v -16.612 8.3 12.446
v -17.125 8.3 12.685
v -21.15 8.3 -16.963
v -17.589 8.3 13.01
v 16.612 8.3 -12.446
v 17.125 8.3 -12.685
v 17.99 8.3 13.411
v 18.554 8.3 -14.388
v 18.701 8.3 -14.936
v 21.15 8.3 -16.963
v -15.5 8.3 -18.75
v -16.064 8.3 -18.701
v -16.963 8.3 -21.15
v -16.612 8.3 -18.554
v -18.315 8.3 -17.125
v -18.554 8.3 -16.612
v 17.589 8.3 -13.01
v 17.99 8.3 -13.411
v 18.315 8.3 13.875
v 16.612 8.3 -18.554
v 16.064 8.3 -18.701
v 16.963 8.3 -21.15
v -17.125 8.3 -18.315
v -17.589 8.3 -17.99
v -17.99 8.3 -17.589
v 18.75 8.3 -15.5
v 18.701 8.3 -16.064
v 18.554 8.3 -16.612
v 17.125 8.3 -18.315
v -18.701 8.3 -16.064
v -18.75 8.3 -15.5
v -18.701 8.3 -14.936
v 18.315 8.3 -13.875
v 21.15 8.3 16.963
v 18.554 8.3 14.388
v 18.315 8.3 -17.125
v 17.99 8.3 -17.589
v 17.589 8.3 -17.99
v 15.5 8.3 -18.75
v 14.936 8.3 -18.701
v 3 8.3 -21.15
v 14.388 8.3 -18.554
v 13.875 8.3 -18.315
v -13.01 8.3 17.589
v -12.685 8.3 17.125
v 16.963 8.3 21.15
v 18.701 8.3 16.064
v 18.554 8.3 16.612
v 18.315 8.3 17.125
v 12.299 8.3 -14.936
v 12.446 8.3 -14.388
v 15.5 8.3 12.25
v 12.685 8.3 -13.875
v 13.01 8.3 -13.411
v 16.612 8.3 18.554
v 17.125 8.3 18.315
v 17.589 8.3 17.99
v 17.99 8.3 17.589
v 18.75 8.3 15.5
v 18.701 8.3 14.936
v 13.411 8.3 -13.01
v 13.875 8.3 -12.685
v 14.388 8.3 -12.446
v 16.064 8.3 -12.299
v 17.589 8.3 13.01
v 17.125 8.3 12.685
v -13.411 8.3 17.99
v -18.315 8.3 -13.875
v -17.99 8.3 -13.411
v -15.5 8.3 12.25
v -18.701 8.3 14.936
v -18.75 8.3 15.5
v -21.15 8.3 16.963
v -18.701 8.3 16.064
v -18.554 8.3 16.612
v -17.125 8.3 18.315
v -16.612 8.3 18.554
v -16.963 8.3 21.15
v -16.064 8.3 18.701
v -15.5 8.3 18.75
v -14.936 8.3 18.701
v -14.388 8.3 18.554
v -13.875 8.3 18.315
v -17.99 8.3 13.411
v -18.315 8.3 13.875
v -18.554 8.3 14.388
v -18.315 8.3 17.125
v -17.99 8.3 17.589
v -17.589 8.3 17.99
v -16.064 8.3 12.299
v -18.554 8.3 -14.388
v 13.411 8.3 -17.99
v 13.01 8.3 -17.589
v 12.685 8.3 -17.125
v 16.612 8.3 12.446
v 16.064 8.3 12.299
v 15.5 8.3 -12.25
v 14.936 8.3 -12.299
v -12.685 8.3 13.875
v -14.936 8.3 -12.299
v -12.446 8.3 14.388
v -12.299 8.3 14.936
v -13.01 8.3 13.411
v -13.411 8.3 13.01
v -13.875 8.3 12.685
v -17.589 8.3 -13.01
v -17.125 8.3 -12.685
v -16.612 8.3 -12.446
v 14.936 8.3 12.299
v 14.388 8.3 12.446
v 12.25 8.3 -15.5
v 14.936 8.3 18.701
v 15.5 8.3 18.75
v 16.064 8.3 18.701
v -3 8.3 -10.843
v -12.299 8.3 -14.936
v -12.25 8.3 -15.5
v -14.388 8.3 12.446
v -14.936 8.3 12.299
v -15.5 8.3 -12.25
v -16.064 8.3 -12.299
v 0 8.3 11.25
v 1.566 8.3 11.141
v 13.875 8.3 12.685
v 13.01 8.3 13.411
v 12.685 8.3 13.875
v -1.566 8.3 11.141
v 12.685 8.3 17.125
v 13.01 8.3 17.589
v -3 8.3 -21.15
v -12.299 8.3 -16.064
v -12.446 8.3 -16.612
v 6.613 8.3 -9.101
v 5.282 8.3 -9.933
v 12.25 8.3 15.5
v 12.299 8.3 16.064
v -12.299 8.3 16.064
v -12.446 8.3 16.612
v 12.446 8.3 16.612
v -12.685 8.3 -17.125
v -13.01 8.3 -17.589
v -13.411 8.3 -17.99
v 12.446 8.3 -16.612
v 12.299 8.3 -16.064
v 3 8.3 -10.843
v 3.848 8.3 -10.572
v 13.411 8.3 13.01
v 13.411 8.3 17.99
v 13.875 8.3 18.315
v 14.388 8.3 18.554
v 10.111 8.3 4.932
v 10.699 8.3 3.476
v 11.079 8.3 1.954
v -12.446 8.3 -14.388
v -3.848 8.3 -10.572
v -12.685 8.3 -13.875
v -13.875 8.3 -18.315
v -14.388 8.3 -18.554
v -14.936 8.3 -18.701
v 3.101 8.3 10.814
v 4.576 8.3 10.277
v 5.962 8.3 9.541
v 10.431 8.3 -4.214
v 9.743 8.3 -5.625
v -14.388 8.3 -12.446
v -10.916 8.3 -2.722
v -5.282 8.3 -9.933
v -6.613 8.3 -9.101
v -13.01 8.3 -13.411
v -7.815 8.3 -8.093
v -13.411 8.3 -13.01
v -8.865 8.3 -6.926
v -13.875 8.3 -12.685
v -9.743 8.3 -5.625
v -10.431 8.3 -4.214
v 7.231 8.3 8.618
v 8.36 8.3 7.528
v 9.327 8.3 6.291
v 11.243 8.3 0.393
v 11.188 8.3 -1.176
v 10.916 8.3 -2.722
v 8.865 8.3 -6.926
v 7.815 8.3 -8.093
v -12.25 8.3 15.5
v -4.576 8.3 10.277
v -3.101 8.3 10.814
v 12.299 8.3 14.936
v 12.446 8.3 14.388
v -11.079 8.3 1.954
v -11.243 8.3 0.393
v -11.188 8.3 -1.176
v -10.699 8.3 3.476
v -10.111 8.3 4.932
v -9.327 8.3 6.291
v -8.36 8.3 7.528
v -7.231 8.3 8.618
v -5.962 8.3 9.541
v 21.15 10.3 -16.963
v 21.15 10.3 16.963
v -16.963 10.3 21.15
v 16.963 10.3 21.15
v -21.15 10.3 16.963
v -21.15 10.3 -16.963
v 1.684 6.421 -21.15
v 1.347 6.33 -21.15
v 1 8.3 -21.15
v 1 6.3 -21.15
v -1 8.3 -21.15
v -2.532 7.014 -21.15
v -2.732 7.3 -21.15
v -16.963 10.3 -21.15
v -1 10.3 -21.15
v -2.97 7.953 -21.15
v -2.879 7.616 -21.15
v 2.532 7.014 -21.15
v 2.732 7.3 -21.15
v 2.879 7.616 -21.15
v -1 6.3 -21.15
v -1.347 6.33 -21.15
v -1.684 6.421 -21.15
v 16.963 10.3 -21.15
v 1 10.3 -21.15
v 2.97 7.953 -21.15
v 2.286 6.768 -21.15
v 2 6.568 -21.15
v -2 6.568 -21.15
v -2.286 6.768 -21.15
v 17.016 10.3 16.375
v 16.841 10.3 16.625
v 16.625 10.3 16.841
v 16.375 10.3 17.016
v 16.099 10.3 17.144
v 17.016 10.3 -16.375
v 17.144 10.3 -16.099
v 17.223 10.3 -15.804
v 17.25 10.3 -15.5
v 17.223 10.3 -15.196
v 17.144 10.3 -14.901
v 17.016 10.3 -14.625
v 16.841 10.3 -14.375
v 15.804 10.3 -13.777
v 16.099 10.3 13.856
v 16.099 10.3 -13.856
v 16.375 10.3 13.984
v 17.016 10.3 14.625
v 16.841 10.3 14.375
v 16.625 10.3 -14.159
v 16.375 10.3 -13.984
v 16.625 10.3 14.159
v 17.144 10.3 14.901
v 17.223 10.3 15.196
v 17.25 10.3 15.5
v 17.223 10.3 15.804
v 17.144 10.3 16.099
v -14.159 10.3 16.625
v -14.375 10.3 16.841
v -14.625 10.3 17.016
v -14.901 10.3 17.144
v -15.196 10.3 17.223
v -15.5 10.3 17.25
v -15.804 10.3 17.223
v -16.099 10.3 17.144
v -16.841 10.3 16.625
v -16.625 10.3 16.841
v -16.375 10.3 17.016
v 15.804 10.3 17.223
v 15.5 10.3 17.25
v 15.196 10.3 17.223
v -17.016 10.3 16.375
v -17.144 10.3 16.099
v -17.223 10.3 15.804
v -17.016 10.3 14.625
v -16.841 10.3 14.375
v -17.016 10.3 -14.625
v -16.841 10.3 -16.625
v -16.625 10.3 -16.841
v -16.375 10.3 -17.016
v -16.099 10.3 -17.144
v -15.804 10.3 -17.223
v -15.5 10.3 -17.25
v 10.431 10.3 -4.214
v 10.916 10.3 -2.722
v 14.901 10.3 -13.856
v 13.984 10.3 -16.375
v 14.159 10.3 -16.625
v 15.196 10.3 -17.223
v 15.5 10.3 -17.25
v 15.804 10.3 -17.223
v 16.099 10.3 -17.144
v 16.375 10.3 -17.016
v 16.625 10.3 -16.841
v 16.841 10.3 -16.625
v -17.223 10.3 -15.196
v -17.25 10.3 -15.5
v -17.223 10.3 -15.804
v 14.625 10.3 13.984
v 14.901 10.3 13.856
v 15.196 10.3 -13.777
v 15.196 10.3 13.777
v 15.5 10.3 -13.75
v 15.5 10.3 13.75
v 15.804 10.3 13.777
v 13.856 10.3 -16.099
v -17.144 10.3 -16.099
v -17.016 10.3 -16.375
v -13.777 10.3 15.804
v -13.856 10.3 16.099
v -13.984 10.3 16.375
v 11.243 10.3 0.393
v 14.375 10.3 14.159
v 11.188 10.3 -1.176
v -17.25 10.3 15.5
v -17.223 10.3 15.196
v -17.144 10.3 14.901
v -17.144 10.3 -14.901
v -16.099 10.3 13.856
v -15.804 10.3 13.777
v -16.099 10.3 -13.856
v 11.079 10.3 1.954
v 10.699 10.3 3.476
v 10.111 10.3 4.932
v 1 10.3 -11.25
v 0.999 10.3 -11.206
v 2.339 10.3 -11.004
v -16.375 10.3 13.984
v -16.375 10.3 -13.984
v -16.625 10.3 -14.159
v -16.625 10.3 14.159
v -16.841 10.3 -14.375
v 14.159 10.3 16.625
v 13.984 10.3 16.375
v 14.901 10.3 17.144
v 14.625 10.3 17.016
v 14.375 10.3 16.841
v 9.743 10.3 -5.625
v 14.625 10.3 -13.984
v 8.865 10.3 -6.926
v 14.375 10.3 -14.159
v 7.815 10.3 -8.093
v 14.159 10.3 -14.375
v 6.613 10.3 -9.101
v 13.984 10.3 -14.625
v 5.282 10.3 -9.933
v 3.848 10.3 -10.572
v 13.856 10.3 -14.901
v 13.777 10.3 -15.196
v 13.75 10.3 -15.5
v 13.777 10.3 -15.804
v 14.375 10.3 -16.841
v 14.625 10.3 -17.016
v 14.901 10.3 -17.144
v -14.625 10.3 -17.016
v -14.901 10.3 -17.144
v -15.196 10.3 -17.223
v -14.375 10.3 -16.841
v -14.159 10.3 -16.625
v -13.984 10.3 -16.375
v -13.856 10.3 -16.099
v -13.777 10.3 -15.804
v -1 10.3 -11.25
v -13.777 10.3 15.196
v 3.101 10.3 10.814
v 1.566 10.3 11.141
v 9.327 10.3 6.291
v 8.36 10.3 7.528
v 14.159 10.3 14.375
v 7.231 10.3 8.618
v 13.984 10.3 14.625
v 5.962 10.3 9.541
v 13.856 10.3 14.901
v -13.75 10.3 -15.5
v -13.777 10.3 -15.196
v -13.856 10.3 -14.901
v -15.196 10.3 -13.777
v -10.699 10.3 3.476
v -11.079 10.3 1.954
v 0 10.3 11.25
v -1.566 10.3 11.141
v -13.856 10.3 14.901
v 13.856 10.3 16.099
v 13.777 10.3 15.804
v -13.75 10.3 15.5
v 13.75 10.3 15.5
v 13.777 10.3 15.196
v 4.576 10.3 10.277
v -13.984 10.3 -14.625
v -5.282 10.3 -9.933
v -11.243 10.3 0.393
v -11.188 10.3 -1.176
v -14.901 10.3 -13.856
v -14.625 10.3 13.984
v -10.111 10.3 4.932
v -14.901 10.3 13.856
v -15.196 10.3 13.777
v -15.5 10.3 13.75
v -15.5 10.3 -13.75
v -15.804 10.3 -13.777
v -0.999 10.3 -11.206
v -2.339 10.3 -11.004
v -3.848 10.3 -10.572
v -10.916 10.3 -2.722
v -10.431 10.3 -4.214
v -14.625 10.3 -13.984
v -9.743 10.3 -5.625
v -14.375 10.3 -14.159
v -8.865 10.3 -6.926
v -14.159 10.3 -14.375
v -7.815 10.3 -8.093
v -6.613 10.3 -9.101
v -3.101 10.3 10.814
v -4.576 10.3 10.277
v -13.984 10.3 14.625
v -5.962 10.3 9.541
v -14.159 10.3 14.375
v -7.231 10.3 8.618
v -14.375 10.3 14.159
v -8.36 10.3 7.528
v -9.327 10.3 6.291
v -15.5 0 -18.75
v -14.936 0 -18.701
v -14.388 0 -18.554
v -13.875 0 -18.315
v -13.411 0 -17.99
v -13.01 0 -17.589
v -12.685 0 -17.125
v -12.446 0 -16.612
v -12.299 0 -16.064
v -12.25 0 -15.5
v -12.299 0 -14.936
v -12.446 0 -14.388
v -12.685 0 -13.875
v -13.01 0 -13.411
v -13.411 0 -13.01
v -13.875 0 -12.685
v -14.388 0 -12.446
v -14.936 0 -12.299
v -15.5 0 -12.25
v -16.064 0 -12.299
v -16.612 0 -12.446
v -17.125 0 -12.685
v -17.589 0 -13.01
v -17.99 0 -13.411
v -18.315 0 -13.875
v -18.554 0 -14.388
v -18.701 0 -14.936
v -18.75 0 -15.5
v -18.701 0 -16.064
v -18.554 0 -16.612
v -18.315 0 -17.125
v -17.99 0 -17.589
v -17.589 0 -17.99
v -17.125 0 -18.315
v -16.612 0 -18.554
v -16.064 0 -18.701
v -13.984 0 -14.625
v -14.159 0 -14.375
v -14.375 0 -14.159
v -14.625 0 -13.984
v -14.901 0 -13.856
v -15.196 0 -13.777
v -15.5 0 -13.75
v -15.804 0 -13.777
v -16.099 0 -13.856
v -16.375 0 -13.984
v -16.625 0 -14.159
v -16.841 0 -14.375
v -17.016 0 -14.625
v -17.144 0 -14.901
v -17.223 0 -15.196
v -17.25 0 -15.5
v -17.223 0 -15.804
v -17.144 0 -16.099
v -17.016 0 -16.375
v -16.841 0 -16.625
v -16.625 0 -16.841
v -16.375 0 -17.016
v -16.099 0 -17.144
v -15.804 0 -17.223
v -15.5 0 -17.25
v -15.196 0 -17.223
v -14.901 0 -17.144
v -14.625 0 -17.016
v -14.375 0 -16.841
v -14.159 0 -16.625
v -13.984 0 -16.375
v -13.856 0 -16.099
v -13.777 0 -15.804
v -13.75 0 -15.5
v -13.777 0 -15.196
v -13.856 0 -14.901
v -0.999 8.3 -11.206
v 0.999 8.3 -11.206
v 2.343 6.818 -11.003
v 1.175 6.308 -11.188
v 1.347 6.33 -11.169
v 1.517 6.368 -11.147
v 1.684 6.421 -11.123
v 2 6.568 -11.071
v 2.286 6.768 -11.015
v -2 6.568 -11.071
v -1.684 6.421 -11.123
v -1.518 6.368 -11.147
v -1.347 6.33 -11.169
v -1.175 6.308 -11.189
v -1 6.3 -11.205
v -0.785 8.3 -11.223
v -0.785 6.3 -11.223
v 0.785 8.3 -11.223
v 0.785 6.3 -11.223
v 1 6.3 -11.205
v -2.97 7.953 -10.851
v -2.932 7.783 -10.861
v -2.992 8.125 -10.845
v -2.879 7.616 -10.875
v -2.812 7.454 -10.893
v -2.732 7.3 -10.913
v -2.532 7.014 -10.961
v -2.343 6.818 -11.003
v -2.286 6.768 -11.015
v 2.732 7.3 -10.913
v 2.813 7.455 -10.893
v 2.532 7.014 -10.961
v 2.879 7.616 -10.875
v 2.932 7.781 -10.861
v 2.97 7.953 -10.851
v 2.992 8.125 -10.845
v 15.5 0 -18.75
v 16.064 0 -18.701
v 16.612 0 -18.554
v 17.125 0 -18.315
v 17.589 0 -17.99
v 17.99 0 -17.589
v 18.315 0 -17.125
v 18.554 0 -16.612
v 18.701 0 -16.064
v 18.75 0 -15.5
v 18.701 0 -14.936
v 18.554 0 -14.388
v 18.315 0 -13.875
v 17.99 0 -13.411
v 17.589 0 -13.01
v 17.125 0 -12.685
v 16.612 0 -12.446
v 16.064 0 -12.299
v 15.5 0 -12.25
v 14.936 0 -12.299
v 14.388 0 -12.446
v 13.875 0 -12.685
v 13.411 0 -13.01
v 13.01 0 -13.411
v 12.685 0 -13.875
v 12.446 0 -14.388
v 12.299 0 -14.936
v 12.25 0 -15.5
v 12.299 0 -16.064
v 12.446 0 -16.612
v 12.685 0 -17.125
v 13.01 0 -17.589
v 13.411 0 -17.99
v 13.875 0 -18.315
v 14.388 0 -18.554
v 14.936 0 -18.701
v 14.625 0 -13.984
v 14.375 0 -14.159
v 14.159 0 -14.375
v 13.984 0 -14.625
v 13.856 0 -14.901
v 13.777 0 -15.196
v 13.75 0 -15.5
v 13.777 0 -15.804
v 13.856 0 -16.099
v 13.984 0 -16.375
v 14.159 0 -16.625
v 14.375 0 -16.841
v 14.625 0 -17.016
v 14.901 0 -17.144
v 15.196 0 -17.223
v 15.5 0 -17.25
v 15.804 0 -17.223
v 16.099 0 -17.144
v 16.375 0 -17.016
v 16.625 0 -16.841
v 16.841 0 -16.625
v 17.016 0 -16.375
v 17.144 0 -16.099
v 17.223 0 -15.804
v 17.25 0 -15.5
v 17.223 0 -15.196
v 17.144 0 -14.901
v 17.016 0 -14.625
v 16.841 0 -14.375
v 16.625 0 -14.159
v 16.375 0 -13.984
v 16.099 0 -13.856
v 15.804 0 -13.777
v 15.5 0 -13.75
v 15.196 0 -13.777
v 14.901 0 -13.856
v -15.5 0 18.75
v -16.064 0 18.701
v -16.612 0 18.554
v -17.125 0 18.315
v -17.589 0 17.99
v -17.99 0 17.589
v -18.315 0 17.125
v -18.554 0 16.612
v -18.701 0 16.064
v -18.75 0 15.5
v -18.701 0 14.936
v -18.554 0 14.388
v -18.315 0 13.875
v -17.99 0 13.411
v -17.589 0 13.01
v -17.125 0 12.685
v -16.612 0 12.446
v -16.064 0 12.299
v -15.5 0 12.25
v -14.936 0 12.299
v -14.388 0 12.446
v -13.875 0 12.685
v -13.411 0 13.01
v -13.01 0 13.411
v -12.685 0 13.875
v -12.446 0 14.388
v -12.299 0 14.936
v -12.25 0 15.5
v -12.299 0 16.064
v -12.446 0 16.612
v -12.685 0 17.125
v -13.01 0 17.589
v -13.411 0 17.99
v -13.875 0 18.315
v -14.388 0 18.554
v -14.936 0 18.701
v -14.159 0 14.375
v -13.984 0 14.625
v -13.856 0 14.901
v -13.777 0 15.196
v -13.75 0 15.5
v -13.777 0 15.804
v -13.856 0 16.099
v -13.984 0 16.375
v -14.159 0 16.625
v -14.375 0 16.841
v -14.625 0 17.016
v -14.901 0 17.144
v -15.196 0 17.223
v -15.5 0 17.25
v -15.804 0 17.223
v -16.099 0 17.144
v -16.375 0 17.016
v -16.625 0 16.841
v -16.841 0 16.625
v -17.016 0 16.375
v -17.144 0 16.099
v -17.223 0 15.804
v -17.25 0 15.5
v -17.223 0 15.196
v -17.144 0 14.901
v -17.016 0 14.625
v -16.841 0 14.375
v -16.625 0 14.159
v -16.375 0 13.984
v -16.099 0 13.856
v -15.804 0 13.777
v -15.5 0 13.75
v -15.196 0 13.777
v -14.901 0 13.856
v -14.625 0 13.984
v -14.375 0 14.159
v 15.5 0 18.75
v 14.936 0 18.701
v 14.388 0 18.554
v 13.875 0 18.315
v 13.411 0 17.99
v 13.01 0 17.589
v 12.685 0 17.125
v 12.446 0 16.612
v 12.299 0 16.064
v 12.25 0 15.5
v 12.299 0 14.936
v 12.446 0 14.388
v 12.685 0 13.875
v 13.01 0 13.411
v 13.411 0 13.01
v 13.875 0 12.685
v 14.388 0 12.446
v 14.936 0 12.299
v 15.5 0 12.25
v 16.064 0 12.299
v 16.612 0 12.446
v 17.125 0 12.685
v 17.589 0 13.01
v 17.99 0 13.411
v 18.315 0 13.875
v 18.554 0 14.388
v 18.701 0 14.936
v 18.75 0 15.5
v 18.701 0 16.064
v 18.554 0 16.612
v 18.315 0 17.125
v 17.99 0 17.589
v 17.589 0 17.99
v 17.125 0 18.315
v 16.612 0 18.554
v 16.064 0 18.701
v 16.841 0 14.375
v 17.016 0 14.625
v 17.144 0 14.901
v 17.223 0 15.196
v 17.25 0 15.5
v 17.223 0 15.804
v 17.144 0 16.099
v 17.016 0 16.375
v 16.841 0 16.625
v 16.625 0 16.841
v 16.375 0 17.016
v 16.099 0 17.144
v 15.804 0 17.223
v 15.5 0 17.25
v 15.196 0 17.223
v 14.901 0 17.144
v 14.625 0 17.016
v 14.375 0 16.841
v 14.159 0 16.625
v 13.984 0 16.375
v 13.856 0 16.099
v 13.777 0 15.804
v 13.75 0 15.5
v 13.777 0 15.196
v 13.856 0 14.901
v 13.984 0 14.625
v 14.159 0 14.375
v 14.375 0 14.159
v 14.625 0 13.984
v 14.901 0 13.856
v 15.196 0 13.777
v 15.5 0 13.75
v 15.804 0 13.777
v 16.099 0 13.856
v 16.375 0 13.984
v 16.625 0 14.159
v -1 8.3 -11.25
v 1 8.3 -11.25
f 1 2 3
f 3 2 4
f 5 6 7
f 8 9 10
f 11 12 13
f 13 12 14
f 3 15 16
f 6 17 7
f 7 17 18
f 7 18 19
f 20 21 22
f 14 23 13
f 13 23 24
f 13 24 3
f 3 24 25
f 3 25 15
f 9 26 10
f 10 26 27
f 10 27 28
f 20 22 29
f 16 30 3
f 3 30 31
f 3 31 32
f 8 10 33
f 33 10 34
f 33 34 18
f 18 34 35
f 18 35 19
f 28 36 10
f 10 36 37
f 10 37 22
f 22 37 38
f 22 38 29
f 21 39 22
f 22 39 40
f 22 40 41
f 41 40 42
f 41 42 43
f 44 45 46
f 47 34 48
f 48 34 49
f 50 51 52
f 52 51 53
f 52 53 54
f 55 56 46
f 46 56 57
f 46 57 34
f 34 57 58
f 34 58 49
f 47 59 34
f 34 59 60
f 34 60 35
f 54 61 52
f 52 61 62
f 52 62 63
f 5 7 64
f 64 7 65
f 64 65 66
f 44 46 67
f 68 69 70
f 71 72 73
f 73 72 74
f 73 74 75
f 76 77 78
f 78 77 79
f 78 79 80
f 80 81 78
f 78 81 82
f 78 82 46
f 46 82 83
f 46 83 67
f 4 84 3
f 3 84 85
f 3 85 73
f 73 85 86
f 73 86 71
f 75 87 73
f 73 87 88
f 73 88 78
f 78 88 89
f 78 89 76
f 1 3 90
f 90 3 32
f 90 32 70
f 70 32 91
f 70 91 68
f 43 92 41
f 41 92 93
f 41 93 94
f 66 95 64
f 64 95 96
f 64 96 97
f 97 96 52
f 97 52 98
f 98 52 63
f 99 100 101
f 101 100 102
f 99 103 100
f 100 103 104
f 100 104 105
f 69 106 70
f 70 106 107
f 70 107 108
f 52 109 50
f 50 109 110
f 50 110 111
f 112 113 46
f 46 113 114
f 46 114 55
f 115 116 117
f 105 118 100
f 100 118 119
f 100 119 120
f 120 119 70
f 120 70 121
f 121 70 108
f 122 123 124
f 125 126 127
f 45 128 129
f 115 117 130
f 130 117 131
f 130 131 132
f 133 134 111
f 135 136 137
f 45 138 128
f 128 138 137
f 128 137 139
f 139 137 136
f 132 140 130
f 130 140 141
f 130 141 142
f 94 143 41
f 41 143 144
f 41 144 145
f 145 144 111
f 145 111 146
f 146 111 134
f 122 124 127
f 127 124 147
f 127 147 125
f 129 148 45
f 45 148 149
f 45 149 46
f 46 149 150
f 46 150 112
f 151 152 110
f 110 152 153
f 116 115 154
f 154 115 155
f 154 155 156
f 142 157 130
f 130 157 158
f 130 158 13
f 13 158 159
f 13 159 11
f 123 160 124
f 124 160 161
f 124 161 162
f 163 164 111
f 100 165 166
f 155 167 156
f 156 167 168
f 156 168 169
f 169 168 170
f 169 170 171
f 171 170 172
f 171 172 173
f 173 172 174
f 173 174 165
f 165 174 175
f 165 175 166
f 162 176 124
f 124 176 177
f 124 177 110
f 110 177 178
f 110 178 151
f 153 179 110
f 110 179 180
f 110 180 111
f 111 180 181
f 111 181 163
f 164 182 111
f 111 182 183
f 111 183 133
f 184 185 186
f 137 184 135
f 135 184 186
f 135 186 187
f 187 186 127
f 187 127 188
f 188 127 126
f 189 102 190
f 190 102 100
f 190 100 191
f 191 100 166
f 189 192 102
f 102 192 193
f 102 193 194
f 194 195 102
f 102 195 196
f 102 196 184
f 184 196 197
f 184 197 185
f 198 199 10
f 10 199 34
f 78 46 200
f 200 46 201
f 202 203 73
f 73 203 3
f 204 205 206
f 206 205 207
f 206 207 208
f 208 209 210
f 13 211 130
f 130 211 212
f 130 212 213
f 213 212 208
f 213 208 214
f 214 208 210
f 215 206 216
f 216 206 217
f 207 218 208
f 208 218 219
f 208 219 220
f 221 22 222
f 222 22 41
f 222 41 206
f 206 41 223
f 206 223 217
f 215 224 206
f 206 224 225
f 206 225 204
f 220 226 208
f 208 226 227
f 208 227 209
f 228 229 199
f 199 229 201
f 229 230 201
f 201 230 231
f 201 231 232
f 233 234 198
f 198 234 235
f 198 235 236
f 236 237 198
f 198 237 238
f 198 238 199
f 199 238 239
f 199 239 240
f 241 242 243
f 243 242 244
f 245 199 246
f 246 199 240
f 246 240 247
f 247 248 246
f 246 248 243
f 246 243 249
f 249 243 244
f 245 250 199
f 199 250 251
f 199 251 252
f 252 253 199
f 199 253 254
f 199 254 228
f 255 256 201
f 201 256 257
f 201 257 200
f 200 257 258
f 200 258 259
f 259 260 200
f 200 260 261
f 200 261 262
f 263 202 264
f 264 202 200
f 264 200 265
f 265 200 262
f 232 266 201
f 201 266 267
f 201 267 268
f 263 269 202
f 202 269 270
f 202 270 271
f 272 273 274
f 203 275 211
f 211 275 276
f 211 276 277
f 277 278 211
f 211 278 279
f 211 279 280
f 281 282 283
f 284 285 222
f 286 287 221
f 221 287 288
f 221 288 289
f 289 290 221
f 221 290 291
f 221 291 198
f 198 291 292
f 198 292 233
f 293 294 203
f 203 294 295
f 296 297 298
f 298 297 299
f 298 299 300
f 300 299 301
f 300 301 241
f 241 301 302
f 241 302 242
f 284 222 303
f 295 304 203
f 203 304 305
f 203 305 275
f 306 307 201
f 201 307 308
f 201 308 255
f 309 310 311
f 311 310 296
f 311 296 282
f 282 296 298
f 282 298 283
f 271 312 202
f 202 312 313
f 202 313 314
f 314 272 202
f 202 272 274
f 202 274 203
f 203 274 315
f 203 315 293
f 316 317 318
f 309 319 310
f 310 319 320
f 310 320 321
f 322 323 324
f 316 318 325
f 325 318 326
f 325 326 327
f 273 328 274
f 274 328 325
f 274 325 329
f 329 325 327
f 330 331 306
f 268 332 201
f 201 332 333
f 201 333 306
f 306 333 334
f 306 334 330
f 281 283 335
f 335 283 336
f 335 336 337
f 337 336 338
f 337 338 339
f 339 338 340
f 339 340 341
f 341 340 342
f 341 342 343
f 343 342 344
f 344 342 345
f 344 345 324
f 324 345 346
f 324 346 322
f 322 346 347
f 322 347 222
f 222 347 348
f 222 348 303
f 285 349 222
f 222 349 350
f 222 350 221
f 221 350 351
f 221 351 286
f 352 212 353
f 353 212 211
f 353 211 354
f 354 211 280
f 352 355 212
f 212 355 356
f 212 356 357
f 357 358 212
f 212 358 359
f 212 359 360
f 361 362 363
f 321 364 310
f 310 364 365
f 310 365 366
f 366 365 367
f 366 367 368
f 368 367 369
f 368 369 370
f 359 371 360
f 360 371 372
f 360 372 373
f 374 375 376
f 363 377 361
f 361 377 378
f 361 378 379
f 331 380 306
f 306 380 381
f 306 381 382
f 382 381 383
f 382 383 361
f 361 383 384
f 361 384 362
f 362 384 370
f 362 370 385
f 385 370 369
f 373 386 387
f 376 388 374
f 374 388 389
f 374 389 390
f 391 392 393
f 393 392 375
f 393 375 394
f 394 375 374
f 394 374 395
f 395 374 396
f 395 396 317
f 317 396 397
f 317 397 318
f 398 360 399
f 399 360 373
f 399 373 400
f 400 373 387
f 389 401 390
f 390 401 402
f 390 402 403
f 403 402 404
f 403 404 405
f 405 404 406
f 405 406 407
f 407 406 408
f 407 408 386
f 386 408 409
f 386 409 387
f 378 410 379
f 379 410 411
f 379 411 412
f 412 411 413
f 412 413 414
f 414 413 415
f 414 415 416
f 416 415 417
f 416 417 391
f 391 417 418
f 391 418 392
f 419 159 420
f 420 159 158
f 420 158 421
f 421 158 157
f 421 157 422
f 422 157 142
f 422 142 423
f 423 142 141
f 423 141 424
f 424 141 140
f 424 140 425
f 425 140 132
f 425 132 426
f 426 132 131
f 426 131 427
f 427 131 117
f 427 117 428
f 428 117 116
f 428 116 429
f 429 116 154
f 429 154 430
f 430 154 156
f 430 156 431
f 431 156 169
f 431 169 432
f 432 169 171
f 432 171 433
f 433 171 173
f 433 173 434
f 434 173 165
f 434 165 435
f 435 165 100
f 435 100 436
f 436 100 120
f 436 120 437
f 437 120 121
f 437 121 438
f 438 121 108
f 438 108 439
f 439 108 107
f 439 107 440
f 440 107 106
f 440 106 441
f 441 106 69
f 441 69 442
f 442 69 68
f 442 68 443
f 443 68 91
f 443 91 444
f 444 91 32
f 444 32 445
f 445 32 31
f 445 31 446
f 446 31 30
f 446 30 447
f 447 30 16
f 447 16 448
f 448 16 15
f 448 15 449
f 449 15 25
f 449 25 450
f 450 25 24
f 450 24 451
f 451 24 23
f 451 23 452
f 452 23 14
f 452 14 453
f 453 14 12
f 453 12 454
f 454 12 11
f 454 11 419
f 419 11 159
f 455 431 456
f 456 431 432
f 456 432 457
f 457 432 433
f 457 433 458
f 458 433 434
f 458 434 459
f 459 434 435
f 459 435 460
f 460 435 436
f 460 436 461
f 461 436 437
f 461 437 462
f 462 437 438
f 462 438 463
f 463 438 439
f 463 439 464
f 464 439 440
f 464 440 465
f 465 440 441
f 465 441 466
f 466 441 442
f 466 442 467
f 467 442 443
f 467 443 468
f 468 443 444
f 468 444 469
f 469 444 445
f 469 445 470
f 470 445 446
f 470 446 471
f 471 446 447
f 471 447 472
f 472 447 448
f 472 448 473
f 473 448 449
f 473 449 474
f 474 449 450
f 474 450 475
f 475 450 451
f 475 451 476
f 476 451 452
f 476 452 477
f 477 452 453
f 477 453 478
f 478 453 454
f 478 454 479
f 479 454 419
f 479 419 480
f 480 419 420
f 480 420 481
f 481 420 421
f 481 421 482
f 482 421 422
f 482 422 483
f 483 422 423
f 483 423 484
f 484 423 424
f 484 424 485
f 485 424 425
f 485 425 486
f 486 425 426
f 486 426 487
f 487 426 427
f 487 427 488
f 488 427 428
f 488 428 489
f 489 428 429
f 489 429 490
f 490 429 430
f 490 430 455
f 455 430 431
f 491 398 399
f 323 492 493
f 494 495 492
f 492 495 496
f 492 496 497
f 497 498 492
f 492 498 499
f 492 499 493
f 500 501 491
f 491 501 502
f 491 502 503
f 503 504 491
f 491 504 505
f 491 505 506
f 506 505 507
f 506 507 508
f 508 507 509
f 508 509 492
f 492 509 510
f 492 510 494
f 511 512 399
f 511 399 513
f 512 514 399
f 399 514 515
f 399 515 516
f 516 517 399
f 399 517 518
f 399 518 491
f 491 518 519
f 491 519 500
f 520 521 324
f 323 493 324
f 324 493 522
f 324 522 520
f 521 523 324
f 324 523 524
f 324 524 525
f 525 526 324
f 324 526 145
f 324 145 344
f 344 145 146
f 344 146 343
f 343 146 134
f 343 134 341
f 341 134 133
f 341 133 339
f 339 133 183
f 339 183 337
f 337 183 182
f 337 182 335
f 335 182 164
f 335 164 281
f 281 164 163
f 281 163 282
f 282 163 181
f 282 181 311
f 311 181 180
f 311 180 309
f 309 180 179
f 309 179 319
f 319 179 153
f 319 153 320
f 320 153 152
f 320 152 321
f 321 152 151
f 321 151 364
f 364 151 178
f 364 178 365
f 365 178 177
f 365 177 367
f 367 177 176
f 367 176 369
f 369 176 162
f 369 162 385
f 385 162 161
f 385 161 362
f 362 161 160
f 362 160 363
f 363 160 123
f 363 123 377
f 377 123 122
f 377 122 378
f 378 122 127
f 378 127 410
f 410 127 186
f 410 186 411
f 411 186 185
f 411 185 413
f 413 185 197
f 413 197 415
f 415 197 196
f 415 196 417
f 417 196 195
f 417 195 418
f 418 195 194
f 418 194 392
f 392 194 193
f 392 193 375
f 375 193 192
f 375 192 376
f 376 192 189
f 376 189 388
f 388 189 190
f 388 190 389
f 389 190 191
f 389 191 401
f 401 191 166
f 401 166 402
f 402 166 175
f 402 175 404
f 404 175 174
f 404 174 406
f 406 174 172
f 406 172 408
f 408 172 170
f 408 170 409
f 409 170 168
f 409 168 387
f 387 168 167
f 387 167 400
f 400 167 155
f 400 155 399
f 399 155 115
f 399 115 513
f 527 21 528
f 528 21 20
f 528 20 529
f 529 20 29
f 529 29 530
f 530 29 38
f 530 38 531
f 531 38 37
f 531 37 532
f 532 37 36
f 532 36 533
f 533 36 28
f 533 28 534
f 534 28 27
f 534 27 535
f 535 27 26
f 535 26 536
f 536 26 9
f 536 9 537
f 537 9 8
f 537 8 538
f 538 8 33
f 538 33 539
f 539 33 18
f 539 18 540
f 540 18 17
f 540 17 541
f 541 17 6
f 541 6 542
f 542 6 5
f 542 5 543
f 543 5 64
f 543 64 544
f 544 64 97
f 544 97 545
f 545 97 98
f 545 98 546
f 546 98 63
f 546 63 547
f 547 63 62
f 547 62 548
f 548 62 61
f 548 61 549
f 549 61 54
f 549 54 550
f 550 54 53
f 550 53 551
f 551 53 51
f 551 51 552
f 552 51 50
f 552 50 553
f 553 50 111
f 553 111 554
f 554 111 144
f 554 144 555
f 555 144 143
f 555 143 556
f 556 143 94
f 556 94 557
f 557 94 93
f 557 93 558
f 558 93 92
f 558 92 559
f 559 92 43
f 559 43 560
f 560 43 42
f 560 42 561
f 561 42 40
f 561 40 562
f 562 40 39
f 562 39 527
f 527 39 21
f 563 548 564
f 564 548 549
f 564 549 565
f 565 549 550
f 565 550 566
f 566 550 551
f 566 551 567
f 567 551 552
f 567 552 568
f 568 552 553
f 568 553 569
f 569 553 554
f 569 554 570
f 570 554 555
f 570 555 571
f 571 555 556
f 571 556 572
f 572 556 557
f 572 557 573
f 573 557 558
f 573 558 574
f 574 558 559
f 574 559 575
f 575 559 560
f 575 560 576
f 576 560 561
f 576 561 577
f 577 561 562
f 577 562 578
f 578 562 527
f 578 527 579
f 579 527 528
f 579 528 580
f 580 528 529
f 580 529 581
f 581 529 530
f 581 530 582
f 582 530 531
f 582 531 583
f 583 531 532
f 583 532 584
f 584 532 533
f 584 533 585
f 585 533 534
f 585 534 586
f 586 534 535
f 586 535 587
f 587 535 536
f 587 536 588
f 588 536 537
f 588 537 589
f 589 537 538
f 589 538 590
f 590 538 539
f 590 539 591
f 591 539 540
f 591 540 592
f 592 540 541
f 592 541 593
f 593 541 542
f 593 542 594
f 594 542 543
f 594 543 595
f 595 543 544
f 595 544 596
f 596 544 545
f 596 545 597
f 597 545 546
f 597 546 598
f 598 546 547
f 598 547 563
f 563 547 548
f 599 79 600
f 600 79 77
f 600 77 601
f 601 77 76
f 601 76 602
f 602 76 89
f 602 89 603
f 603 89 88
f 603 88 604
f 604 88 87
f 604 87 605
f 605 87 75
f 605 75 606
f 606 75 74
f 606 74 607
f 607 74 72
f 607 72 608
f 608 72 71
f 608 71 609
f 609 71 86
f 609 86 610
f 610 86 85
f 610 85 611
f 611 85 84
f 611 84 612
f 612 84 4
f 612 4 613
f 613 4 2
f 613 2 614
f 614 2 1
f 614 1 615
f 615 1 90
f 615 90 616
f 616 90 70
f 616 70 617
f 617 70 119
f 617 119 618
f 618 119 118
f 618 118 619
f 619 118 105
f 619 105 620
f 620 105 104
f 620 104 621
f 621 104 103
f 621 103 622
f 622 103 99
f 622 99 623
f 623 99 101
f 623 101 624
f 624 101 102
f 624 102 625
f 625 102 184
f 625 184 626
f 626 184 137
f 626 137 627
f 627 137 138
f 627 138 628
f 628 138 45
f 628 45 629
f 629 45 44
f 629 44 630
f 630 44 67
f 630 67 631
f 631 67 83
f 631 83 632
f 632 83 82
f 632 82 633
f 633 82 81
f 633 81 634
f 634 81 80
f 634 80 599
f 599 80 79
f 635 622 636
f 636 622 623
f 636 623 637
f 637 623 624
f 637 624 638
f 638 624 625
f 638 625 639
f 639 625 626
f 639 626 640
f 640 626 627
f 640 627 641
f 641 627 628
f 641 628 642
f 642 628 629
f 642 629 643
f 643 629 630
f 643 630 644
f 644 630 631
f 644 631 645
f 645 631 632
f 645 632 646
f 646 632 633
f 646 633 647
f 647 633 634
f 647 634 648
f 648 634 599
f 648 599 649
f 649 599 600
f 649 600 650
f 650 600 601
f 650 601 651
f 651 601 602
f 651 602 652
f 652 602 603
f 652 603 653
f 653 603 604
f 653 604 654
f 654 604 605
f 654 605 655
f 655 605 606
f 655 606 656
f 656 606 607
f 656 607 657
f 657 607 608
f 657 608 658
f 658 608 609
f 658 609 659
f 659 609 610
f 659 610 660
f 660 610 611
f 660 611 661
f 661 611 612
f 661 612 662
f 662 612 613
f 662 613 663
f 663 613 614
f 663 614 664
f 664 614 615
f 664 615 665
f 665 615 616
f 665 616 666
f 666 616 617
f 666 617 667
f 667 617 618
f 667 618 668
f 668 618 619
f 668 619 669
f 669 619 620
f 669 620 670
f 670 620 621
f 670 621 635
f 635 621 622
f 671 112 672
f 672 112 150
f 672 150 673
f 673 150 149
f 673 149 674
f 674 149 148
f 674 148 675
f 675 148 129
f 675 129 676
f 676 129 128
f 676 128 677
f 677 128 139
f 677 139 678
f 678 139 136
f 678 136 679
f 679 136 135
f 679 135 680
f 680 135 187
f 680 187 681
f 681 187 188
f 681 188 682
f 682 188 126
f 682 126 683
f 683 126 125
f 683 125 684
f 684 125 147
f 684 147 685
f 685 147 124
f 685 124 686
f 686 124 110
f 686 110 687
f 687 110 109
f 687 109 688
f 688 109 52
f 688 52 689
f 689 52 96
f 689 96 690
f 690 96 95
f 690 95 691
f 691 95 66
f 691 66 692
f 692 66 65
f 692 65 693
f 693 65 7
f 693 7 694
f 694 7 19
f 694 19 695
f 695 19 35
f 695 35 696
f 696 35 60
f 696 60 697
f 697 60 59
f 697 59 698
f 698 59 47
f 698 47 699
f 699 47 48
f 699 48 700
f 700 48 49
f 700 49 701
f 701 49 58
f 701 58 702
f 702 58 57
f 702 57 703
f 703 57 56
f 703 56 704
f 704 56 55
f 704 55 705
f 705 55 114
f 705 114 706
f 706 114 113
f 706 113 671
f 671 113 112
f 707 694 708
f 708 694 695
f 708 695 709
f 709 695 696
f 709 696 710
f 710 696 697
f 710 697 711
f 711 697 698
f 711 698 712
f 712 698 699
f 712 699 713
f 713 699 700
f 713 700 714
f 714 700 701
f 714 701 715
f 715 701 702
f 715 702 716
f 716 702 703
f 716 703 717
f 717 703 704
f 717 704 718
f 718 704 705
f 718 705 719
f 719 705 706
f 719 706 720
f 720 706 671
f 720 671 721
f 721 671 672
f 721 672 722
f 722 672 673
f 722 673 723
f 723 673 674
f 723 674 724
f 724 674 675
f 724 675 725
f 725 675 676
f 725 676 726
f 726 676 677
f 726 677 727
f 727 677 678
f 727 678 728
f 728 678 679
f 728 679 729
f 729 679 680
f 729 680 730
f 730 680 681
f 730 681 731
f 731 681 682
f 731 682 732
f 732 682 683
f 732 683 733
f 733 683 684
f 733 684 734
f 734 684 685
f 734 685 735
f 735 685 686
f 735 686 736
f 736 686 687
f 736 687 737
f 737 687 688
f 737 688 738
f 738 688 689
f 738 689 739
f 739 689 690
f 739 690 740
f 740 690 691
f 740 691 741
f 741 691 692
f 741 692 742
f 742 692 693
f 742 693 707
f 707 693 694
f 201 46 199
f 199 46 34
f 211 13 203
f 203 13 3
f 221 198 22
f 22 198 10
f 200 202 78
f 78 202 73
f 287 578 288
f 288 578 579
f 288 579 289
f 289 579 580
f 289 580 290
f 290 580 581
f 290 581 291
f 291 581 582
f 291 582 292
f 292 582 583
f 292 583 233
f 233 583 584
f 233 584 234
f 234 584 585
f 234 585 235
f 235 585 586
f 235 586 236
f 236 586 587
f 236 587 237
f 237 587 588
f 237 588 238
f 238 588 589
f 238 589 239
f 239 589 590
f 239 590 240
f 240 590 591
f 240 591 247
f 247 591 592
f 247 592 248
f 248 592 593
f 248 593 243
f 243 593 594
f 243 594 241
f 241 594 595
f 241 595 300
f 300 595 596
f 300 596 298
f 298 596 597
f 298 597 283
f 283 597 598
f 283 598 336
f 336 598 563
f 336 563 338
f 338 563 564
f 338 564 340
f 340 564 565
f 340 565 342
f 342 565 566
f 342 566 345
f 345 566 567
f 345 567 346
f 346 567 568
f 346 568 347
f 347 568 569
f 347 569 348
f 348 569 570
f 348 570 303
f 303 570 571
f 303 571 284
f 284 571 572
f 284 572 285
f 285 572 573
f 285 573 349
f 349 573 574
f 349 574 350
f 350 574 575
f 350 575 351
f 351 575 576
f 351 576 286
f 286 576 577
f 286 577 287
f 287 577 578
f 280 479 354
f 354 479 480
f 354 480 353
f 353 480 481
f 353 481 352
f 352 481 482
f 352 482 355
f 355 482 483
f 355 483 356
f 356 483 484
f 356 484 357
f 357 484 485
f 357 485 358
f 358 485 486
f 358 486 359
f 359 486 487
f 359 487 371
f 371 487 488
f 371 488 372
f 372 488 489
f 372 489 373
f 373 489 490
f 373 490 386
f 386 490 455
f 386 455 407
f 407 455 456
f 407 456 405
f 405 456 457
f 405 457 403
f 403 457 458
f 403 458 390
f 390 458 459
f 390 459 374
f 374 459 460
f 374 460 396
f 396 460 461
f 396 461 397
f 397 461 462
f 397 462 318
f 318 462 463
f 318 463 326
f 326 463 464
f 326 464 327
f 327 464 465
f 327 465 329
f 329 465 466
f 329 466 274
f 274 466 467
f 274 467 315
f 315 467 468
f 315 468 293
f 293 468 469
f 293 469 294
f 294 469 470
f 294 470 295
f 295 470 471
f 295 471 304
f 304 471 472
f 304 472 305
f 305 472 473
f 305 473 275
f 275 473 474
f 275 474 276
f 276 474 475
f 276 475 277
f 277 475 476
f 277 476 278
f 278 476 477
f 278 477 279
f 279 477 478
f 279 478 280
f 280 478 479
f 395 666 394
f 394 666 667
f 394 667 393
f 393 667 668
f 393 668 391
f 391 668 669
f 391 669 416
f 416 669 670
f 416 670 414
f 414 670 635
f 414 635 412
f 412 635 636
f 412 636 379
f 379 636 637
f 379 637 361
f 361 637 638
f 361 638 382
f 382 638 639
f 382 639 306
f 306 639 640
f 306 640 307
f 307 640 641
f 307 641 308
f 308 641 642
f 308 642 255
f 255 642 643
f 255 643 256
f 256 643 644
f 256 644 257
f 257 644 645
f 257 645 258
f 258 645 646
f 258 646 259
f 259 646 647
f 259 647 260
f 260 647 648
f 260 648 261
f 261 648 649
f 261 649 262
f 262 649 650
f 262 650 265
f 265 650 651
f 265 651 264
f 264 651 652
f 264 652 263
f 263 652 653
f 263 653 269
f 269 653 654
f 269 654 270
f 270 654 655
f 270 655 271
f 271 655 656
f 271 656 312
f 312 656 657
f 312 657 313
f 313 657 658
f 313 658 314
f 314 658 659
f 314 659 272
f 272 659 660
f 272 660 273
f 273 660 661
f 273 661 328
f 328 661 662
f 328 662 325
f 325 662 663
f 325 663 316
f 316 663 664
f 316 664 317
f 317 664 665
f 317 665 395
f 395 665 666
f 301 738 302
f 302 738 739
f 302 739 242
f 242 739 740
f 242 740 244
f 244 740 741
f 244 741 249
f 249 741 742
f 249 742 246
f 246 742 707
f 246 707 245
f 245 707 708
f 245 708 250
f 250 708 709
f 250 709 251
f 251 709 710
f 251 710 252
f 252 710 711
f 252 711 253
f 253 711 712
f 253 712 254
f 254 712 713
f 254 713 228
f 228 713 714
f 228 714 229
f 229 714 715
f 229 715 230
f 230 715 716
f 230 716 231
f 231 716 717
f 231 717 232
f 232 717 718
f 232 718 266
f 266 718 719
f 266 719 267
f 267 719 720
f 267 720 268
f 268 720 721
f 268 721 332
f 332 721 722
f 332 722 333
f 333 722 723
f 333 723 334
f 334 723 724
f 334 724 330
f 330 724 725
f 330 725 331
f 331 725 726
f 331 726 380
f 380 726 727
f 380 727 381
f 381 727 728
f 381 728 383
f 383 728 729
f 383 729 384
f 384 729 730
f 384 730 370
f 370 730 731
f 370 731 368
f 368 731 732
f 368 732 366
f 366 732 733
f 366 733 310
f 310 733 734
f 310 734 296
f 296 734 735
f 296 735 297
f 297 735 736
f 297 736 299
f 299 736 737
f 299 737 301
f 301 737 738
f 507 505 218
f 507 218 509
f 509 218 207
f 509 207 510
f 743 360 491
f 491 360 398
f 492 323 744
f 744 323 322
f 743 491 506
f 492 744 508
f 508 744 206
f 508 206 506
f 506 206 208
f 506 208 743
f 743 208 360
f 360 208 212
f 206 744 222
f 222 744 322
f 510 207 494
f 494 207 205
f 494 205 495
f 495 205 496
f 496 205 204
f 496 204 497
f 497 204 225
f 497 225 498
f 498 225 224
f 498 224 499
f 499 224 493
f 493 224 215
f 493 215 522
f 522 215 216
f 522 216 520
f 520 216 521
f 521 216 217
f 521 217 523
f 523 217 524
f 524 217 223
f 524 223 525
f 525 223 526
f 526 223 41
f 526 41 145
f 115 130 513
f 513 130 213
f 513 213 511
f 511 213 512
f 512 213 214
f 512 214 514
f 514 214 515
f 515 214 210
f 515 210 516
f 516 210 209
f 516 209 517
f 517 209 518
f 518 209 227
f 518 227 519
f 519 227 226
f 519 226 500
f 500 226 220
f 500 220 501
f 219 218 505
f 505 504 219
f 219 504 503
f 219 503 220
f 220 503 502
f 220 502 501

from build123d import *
from build123d.topology import SkipClean

# Parameters (mm, degrees)
SKETCH1_R               = 3.25
BOSS_EXTRUDE1_DEPTH     = 10.3
SKETCH2_W               = 42.3
SKETCH2_H               = 42.3
SKETCH2_R               = 11.25
BOSS_EXTRUDE2_DEPTH     = 2
CUT_EXTRUDE1_DEPTH      = 32.634395837
SKETCH4_R               = 1.75
CUT_EXTRUDE2_DEPTH      = 32.634395837
MIRROR6_COPY_1_SKETCH_R = 1.75
MIRROR6_COPY_1_DEPTH    = 32.634395837
BOSS_EXTRUDE3_DEPTH     = 2
CUT_EXTRUDE3_DEPTH      = 2
FILLET1_R               = 2


with BuildPart() as part:
    # Sketch1 → Boss-Extrude1 (new body)
    with BuildSketch(Plane(origin=(0, 0, 0), x_dir=(1, 0, 0), z_dir=(0, 1, 0))):
        with Locations(Location((-15.5, 15.5, 0), (0, 0, 90))):
            Circle(SKETCH1_R)
    extrude(amount=BOSS_EXTRUDE1_DEPTH)


with BuildPart() as body_2:
    # Mirror2: mirrored copy
    add(part.part.mirror(Plane(origin=(0, 0, 0), x_dir=(0, 0, 1), z_dir=(1, 0, 0))))


with BuildPart() as body_3:
    # Mirror3: mirrored copy
    add(part.part.mirror(Plane.XY))


with BuildPart() as body_4:
    # Mirror3 2: mirrored copy
    add(body_2.part.mirror(Plane.XY))


with BuildPart() as part_1:
    add(part.part)

    add(body_2.part)  # Boss-Extrude2 merges body 2

    add(body_3.part)  # Boss-Extrude2 merges body 3

    add(body_4.part)  # Boss-Extrude2 merges body 4
    # Sketch2 → Boss-Extrude2 (add)
    with BuildSketch(Plane(origin=(0, 10.3, 0), x_dir=(1, 0, 0), z_dir=(0, 1, 0))):
        Rectangle(SKETCH2_W, SKETCH2_H)
        with Locations(Location((0, 0, 0), (0, 0, 270))):
            Circle(SKETCH2_R, mode=Mode.SUBTRACT)
    extrude(amount=-BOSS_EXTRUDE2_DEPTH)

    # Sketch3 → Cut-Extrude1 (cut, through all)
    with BuildSketch(Plane(origin=(0, 10.3, 0), x_dir=(1, 0, 0), z_dir=(0, 1, 0))):
        Polygon((-16.963055506, 21.15), (-21.15, 16.963055506), (-21.15, 21.15), align=None)
        Polygon((16.963055506, -21.15), (21.15, -16.963055506), (21.15, -21.15), align=None)
    cut_extrude1 = extrude(amount=-CUT_EXTRUDE1_DEPTH, mode=Mode.SUBTRACT)

    # Mirror4: Cut-Extrude1 across plane
    add(cut_extrude1.mirror(Plane.XY), mode=Mode.SUBTRACT)

    # Sketch4 → Cut-Extrude2 (cut, through all)
    with BuildSketch(Plane.XZ):
        with Locations(Location((15.5, -15.5, 0), (0, 0, 270))):
            Circle(SKETCH4_R)
    cut_extrude2 = extrude(amount=-CUT_EXTRUDE2_DEPTH, mode=Mode.SUBTRACT)

    # Mirror5: Cut-Extrude2 across plane
    add(cut_extrude2.mirror(Plane(origin=(0, 0, 0), x_dir=(0, 0, 1), z_dir=(1, 0, 0))), mode=Mode.SUBTRACT)

    # Mirror6: Cut-Extrude2 across plane
    add(cut_extrude2.mirror(Plane.XY), mode=Mode.SUBTRACT)

    # Mirror6 copy 1 sketch → Mirror6 copy 1 (cut, through all)
    with BuildSketch(Plane(origin=(0, 0, 0), x_dir=(-1, 0, 0), z_dir=(0, -1, 0))):
        with Locations(Location((15.5, -15.5, 0), (0, 0, 270))):
            Circle(MIRROR6_COPY_1_SKETCH_R)
    extrude(amount=-MIRROR6_COPY_1_DEPTH, mode=Mode.SUBTRACT)

    # Sketch6 → Boss-Extrude3 (add)
    with SkipClean():  # the faces are left unmerged after this step: merging them gives an invalid solid
        with BuildSketch(Plane.XZ.offset(-8.3)):
            with BuildLine():
                Line((-3, -21.15), (-3, -10.842624221))
                ThreePointArc((-3, -10.842624221), (0, -11.25), (3, -10.842624221))
                Line((3, -10.842624221), (3, -21.15))
                Line((3, -21.15), (-3, -21.15))
            make_face()
        extrude(amount=BOSS_EXTRUDE3_DEPTH)

    # Sketch7 → Cut-Extrude3 (cut)
    with SkipClean():  # the faces are left unmerged after this step: merging them gives an invalid solid
        with BuildSketch(Plane(origin=(0, 10.3, 0), x_dir=(1, 0, 0), z_dir=(0, 1, 0))):
            with BuildLine():
                Line((-1, 11.25), (-1, 21.15))
                ThreePointArc((-1, 21.15), (0, 22.15), (1, 21.15))
                Line((1, 21.15), (1, 11.25))
                ThreePointArc((1, 11.25), (0, 10.25), (-1, 11.25))
            make_face()
        extrude(amount=-CUT_EXTRUDE3_DEPTH, mode=Mode.SUBTRACT)

    # Fillet1
    fillet1_edges = [part_1.edges().sort_by_distance(p)[0] for p in [
        (3, 6.3, -15.996312111),
        (-3, 6.3, -15.996312111),
    ]]
    fillet(fillet1_edges, radius=FILLET1_R - 0.0001)  # a hair under: the kernel refuses the full size


solid = part_1.part
